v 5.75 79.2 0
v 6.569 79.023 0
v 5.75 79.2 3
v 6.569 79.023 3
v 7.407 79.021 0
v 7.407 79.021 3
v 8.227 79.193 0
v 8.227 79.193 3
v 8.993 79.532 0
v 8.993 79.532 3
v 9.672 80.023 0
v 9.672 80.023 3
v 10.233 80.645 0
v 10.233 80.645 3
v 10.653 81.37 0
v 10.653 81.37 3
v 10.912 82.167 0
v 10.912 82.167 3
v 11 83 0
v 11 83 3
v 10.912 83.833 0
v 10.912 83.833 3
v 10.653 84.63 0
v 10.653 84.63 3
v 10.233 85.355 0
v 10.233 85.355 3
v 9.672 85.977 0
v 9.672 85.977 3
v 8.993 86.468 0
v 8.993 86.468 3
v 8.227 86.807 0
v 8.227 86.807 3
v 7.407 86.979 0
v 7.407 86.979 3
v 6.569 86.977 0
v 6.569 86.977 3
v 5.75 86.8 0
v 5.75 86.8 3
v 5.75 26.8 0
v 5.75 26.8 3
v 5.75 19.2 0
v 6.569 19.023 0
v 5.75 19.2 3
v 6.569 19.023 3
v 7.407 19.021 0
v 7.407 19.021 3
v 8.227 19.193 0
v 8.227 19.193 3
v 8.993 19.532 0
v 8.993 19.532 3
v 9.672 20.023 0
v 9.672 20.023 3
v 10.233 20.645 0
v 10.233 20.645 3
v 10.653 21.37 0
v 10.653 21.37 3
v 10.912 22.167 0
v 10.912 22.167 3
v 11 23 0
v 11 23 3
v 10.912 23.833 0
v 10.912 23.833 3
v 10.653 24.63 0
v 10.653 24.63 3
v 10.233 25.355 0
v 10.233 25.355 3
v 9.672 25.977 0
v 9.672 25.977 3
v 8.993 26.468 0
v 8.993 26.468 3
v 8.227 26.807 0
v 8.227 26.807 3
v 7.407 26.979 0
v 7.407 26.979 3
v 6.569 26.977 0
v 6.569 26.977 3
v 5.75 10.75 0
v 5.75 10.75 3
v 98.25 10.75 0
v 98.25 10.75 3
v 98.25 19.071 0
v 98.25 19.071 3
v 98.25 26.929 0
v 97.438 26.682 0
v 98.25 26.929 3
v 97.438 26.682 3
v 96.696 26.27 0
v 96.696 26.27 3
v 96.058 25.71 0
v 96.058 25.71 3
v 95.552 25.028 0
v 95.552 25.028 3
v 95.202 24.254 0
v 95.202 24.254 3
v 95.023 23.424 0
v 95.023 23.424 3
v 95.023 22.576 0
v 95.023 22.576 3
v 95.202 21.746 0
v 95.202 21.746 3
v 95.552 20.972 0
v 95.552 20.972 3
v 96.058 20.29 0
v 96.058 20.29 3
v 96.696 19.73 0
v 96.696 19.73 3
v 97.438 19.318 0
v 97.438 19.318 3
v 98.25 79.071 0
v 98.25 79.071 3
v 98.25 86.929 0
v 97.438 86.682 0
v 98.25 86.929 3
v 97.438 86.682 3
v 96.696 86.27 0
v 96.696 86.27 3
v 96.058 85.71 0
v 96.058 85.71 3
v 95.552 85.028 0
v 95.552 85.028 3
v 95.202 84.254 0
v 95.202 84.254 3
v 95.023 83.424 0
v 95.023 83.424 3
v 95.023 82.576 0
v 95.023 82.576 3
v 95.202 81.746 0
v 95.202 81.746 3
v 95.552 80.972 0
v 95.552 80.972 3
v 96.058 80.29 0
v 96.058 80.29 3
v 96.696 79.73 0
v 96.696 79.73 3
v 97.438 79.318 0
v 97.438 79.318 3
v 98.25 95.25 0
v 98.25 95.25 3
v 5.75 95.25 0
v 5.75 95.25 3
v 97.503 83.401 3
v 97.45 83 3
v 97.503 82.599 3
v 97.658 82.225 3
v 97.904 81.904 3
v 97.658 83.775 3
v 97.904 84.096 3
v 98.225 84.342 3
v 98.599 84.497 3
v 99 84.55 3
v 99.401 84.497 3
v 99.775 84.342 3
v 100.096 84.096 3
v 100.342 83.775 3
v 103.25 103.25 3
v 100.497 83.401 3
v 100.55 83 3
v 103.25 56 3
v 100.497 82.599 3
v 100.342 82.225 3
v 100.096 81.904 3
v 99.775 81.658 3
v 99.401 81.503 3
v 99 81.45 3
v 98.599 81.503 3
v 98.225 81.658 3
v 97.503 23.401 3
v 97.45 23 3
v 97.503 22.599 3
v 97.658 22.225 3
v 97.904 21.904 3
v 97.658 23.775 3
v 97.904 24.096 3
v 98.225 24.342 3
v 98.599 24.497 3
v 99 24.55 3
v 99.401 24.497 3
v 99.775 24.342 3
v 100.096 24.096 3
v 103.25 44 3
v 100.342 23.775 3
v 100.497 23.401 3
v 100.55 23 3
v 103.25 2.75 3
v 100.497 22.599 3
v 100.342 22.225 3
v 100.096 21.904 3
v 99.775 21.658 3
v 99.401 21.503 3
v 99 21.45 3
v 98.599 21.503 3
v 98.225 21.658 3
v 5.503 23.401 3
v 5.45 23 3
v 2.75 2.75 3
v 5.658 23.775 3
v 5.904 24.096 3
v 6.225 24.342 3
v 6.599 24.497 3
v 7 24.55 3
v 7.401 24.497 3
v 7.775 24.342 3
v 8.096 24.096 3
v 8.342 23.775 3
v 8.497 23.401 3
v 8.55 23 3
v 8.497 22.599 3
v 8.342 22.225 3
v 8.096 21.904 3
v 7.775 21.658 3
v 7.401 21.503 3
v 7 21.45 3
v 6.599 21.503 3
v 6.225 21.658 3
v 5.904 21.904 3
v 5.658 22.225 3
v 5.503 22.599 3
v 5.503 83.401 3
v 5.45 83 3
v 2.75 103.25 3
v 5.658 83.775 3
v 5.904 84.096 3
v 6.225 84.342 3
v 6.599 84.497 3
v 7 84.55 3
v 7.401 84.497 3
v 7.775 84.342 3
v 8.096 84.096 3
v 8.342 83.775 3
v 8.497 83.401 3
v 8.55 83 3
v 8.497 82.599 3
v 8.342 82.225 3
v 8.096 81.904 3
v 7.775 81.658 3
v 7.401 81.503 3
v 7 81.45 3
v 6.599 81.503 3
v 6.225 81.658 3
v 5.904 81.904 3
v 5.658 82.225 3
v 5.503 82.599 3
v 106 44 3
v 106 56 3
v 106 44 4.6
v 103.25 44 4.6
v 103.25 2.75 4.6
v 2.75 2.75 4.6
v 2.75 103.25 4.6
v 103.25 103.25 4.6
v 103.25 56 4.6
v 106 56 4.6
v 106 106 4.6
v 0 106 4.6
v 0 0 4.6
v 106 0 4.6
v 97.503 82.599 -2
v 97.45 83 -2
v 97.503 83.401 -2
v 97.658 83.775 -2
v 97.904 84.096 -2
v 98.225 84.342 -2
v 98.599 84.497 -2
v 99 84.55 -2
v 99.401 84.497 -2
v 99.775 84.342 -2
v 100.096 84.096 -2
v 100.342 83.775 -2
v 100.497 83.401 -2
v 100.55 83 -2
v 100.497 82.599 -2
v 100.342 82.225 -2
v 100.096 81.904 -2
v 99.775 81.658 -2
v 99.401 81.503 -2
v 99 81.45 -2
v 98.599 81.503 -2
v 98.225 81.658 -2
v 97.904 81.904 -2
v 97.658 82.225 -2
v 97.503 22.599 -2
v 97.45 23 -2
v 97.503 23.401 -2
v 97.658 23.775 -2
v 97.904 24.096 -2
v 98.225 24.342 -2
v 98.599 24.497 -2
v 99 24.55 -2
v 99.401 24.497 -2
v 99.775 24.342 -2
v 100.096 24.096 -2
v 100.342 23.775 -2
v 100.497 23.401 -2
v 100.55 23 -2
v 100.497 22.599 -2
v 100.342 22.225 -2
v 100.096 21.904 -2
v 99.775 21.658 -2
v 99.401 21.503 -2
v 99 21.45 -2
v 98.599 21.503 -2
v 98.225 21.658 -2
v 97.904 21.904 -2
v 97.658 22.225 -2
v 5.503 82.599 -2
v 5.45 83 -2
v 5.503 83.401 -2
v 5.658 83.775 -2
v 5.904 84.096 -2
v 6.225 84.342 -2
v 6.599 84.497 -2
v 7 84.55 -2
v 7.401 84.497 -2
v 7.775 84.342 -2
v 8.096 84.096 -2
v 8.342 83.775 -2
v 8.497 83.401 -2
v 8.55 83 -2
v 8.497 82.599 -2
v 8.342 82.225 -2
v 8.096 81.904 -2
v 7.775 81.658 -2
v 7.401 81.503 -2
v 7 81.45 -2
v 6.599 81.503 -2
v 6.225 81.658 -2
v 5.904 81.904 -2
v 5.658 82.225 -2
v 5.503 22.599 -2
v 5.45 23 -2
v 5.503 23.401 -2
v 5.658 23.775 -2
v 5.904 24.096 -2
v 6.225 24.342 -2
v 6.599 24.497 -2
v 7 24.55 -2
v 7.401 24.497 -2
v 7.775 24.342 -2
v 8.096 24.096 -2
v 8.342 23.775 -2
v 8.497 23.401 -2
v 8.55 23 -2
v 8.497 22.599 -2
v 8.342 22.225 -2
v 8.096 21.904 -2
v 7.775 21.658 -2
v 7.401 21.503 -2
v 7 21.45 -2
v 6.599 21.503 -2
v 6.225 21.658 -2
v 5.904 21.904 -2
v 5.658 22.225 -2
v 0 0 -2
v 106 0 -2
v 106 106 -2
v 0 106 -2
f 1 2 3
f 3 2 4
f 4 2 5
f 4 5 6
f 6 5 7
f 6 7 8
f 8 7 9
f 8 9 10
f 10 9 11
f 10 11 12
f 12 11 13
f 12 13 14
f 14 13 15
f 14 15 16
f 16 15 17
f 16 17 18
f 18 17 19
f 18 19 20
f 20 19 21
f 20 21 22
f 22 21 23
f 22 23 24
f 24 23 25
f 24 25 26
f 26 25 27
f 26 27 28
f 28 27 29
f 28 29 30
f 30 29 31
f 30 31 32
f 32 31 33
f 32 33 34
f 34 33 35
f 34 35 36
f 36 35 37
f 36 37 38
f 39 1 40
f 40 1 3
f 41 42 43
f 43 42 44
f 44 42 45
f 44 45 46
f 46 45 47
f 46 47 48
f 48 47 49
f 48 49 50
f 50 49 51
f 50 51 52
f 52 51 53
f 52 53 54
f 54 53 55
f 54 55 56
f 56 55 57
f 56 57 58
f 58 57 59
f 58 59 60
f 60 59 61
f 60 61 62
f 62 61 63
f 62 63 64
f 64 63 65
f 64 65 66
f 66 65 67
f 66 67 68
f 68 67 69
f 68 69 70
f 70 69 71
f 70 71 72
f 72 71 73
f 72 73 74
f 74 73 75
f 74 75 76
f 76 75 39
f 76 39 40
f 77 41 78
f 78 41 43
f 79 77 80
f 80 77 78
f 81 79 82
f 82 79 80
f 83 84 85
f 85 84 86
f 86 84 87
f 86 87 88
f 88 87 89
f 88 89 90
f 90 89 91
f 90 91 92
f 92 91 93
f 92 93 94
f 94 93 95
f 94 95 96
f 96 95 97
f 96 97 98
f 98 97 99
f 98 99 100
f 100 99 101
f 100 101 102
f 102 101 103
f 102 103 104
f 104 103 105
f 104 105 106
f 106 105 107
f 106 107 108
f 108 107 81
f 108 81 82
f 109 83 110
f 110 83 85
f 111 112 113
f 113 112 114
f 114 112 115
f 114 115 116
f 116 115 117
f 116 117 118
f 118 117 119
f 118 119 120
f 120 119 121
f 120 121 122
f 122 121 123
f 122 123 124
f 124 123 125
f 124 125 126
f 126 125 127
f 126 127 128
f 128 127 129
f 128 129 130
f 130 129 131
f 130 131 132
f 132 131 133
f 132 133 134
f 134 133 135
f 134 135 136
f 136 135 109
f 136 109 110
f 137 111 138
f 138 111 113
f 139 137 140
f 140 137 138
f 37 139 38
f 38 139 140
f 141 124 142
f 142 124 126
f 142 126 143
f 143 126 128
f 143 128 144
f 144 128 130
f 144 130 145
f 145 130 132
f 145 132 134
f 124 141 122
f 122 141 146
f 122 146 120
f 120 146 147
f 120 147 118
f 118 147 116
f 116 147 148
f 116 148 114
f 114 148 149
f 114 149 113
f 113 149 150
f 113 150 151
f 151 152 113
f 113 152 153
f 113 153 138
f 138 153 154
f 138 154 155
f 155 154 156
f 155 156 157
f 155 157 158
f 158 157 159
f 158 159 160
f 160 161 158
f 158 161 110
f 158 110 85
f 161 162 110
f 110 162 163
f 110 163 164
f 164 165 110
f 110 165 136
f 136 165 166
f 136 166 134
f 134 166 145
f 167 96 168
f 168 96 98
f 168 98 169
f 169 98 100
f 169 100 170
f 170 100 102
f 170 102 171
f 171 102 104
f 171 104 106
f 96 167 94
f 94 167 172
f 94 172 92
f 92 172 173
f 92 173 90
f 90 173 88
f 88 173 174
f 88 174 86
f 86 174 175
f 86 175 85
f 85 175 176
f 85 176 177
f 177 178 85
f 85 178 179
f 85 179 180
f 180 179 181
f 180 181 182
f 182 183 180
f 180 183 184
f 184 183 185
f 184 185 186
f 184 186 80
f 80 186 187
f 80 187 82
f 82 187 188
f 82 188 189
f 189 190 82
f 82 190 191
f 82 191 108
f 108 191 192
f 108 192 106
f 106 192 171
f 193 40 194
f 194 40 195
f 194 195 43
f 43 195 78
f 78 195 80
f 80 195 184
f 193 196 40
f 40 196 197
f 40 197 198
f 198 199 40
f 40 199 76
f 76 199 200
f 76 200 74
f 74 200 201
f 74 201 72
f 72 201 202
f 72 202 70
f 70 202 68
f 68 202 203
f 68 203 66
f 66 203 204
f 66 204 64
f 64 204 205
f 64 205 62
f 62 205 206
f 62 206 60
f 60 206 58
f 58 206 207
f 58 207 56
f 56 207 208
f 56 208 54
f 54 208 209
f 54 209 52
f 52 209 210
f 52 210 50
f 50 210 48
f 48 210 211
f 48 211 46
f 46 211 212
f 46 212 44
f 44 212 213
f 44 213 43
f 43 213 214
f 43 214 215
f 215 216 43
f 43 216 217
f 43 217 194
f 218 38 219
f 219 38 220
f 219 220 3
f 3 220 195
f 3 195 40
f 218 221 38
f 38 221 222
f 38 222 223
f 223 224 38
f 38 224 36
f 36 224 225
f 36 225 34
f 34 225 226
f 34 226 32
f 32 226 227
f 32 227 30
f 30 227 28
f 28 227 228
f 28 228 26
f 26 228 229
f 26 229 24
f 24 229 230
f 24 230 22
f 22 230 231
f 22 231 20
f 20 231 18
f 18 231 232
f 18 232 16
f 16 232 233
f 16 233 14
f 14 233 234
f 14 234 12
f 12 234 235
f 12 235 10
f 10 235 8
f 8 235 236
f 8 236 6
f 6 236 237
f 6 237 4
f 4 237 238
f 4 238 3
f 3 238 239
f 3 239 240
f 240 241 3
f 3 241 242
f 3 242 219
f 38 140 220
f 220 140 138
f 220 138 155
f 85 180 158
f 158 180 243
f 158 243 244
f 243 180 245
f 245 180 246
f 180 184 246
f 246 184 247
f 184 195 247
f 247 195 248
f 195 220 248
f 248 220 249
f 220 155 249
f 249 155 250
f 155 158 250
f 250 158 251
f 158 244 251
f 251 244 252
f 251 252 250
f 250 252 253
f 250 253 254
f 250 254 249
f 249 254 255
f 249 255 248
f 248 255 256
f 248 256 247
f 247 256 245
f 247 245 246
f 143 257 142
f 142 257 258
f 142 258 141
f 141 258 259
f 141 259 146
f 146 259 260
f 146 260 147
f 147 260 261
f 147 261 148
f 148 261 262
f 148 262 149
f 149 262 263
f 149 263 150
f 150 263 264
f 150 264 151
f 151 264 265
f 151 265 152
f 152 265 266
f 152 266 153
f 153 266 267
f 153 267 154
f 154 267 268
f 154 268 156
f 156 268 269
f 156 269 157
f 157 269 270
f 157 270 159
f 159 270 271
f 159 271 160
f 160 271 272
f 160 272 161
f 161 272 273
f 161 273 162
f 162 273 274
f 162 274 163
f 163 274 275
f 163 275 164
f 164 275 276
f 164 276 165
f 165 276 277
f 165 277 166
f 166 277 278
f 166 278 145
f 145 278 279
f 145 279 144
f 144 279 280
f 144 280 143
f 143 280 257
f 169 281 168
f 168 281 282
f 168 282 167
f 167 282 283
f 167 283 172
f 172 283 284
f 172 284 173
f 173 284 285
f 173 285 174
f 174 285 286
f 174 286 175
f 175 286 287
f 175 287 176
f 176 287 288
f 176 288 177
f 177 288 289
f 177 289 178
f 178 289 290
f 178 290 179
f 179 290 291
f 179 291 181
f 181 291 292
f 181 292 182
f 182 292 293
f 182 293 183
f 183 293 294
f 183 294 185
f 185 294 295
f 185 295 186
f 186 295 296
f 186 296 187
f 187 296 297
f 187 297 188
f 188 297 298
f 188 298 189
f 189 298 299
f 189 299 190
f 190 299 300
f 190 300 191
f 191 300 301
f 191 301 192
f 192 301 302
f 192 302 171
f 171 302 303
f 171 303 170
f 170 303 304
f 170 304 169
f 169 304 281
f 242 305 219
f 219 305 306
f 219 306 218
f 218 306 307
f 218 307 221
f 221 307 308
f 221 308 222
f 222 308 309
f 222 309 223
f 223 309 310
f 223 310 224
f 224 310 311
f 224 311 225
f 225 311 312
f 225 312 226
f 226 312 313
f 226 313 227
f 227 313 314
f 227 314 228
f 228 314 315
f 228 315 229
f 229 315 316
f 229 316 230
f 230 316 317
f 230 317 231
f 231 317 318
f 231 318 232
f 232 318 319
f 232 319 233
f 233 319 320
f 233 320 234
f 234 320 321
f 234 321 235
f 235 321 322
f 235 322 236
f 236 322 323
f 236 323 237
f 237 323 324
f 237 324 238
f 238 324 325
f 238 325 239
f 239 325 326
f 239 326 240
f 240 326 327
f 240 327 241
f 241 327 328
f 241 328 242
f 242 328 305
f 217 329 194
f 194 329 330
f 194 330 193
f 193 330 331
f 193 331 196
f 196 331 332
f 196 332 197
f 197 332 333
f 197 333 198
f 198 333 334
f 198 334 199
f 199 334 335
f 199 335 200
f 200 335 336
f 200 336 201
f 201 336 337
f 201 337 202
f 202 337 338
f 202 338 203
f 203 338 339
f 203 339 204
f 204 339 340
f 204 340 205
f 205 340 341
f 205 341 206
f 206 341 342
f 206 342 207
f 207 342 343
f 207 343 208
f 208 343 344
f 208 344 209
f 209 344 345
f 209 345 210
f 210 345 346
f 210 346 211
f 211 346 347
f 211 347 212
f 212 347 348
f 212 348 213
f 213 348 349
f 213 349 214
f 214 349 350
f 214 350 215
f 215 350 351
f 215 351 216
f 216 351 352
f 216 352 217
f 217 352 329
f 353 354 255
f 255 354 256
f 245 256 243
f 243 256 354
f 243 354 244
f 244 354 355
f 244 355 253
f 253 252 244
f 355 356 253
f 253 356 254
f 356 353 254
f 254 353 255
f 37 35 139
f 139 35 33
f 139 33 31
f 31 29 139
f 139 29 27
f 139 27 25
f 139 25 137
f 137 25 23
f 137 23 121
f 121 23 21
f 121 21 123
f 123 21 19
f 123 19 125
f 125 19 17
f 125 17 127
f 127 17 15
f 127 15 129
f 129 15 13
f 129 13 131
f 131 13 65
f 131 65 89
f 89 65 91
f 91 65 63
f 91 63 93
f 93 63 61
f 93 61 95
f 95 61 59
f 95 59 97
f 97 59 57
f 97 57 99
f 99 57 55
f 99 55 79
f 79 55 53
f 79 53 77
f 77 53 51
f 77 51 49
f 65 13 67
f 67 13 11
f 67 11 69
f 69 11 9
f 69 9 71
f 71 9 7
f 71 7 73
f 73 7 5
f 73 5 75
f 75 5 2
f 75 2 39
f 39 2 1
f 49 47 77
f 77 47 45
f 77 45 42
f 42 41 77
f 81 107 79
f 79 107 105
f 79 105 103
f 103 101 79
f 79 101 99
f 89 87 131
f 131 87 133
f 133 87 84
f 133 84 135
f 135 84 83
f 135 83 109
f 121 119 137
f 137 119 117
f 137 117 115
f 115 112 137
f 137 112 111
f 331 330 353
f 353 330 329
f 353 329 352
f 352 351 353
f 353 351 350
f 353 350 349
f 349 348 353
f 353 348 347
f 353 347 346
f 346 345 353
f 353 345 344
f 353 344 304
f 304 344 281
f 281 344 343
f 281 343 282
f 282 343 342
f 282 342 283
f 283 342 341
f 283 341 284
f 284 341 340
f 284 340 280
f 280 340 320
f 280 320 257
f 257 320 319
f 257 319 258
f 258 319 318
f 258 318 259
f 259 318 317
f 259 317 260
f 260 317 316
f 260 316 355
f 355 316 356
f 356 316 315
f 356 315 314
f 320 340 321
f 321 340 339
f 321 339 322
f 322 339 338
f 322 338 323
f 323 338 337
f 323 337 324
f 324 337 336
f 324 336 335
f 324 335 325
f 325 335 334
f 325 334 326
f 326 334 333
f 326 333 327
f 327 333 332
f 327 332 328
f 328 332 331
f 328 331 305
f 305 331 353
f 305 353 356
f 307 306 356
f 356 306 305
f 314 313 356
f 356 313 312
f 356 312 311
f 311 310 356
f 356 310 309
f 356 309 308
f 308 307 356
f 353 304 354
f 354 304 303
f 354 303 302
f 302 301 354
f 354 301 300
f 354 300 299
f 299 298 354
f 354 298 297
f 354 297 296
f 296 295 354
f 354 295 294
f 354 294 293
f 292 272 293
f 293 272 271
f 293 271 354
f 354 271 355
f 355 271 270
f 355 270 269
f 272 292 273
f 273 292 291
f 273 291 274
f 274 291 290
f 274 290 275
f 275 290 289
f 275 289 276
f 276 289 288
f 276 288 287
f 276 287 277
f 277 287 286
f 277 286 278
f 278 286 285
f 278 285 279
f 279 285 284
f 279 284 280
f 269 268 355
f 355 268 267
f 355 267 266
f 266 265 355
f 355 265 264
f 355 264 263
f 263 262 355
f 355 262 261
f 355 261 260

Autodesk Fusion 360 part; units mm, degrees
sketch "Sketch1" plane through (0, 0, 0) normal (0, 0, 1) x (1, 0, 0)
  line L0 (0, 0) -> (106, 0)
  line L1 (106, 0) -> (106, 106)
  line L2 (106, 106) -> (0, 106)
  line L3 (0, 106) -> (0, 0)
  line L4 (2.75, 2.75) -> (103.25, 2.75)
  line L5 (103.25, 2.75) -> (103.25, 103.25)
  line L6 (103.25, 103.25) -> (2.75, 103.25)
  line L7 (2.75, 103.25) -> (2.75, 2.75)
  circle A0 centre (7, 23) radius 4
  circle A1 centre (7, 83) radius 4
  circle A2 centre (99, 23) radius 4
  circle A3 centre (99, 83) radius 4
  line L8 (2.75, 103.25) -> (103.25, 103.25)
  line L9 (103.25, 103.25) -> (103.25, 95.25)
  line L10 (103.25, 95.25) -> (2.75, 95.25)
  line L11 (2.75, 95.25) -> (2.75, 103.25)
  line L12 (2.75, 2.75) -> (103.25, 2.75)
  line L13 (103.25, 2.75) -> (103.25, 10.75)
  line L14 (103.25, 10.75) -> (2.75, 10.75)
  line L15 (2.75, 10.75) -> (2.75, 2.75)
  line L16 (2.75, 95.25) -> (5.75, 95.25)
  line L17 (5.75, 95.25) -> (5.75, 10.75)
  line L18 (5.75, 10.75) -> (2.75, 10.75)
  line L19 (2.75, 10.75) -> (2.75, 95.25)
  line L20 (103.25, 95.25) -> (98.25, 95.25)
  line L21 (98.25, 95.25) -> (98.25, 10.75)
  line L22 (98.25, 10.75) -> (103.25, 10.75)
  line L23 (103.25, 10.75) -> (103.25, 95.25)
  circle A4 centre (7, 83) radius 1.55
  circle A5 centre (99, 83) radius 1.55
  circle A6 centre (7, 23) radius 1.55
  circle A7 centre (99, 23) radius 1.55
  line L24 (103.25, 56) -> (106, 56)
  line L25 (106, 56) -> (106, 44)
  line L26 (106, 44) -> (103.25, 44)
  line L27 (103.25, 44) -> (103.25, 56)
  dimension "d1" = 106
  dimension "d2" = 106
  dimension "d3" = 100.5
  dimension "d4" = 100.5
  dimension "d5" = 2.75
  dimension "d6" = 2.75
  dimension "d7" = 8
  dimension "d8" = 8
  dimension "d9" = 8
  dimension "d10" = 8
  dimension "d12" = 7
  dimension "d13" = 7
  dimension "d16" = 7
  dimension "d17" = 7
  dimension "d18" = 8
  dimension "d19" = 8
  dimension "d20" = 5
  dimension "d21" = 3
  dimension "d22" = 3.1
  dimension "d23" = 3.1
  dimension "d24" = 3.1
  dimension "d25" = 3.1
  dimension "d48" = 23
  dimension "d49" = 23
  dimension "d50" = 23
  dimension "d51" = 23
  dimension "d52" = 12
  dimension "d55" = 41.25
extrude "Extrude1" add sketch "Sketch1" against normal blind 2 contours L0 L1 L2 L3 L4 L5 L6 L7 L8 L9 L11 L12 L13 L15 L19 L23 L24 L26 | L1 L5 L23 L24 L25 L26 L27 | L5 A2 A3 L10 L14 L20 L21 L22 L23 L27 | L4 L5 L7 L12 L13 L14 L15 L18 L22 | L5 L6 L7 L8 L9 L10 L11 L16 L20 | A0 A1 A2 A3 L10 L14 L17 L21 | L7 A0 A1 L10 L14 L16 L17 L18 L19 | A2 L21 A7 | A2 L21 A7 | A3 L21 A5 | A3 L21 A5 | A0 L17 A6 | A0 L17 A6 | A1 L17 A4 | A1 L17 A4
extrude "Extrude2" add sketch "Sketch1" along normal blind 4.6 contours L0 L1 L2 L3 L4 L5 L6 L7 L8 L9 L11 L12 L13 L15 L19 L23 L24 L26
extrude "Extrude3" add sketch "Sketch1" along normal blind 3 contours L1 L5 L23 L24 L25 L26 L27 | L5 A2 A3 L10 L14 L20 L21 L22 L23 L27 | L4 L5 L7 L12 L13 L14 L15 L18 L22 | L5 L6 L7 L8 L9 L10 L11 L16 L20 | L7 A0 A1 L10 L14 L16 L17 L18 L19 | A2 L21 A7 | A2 L21 A7 | A3 L21 A5 | A3 L21 A5 | A0 L17 A6 | A0 L17 A6 | A1 L17 A4 | A1 L17 A4
